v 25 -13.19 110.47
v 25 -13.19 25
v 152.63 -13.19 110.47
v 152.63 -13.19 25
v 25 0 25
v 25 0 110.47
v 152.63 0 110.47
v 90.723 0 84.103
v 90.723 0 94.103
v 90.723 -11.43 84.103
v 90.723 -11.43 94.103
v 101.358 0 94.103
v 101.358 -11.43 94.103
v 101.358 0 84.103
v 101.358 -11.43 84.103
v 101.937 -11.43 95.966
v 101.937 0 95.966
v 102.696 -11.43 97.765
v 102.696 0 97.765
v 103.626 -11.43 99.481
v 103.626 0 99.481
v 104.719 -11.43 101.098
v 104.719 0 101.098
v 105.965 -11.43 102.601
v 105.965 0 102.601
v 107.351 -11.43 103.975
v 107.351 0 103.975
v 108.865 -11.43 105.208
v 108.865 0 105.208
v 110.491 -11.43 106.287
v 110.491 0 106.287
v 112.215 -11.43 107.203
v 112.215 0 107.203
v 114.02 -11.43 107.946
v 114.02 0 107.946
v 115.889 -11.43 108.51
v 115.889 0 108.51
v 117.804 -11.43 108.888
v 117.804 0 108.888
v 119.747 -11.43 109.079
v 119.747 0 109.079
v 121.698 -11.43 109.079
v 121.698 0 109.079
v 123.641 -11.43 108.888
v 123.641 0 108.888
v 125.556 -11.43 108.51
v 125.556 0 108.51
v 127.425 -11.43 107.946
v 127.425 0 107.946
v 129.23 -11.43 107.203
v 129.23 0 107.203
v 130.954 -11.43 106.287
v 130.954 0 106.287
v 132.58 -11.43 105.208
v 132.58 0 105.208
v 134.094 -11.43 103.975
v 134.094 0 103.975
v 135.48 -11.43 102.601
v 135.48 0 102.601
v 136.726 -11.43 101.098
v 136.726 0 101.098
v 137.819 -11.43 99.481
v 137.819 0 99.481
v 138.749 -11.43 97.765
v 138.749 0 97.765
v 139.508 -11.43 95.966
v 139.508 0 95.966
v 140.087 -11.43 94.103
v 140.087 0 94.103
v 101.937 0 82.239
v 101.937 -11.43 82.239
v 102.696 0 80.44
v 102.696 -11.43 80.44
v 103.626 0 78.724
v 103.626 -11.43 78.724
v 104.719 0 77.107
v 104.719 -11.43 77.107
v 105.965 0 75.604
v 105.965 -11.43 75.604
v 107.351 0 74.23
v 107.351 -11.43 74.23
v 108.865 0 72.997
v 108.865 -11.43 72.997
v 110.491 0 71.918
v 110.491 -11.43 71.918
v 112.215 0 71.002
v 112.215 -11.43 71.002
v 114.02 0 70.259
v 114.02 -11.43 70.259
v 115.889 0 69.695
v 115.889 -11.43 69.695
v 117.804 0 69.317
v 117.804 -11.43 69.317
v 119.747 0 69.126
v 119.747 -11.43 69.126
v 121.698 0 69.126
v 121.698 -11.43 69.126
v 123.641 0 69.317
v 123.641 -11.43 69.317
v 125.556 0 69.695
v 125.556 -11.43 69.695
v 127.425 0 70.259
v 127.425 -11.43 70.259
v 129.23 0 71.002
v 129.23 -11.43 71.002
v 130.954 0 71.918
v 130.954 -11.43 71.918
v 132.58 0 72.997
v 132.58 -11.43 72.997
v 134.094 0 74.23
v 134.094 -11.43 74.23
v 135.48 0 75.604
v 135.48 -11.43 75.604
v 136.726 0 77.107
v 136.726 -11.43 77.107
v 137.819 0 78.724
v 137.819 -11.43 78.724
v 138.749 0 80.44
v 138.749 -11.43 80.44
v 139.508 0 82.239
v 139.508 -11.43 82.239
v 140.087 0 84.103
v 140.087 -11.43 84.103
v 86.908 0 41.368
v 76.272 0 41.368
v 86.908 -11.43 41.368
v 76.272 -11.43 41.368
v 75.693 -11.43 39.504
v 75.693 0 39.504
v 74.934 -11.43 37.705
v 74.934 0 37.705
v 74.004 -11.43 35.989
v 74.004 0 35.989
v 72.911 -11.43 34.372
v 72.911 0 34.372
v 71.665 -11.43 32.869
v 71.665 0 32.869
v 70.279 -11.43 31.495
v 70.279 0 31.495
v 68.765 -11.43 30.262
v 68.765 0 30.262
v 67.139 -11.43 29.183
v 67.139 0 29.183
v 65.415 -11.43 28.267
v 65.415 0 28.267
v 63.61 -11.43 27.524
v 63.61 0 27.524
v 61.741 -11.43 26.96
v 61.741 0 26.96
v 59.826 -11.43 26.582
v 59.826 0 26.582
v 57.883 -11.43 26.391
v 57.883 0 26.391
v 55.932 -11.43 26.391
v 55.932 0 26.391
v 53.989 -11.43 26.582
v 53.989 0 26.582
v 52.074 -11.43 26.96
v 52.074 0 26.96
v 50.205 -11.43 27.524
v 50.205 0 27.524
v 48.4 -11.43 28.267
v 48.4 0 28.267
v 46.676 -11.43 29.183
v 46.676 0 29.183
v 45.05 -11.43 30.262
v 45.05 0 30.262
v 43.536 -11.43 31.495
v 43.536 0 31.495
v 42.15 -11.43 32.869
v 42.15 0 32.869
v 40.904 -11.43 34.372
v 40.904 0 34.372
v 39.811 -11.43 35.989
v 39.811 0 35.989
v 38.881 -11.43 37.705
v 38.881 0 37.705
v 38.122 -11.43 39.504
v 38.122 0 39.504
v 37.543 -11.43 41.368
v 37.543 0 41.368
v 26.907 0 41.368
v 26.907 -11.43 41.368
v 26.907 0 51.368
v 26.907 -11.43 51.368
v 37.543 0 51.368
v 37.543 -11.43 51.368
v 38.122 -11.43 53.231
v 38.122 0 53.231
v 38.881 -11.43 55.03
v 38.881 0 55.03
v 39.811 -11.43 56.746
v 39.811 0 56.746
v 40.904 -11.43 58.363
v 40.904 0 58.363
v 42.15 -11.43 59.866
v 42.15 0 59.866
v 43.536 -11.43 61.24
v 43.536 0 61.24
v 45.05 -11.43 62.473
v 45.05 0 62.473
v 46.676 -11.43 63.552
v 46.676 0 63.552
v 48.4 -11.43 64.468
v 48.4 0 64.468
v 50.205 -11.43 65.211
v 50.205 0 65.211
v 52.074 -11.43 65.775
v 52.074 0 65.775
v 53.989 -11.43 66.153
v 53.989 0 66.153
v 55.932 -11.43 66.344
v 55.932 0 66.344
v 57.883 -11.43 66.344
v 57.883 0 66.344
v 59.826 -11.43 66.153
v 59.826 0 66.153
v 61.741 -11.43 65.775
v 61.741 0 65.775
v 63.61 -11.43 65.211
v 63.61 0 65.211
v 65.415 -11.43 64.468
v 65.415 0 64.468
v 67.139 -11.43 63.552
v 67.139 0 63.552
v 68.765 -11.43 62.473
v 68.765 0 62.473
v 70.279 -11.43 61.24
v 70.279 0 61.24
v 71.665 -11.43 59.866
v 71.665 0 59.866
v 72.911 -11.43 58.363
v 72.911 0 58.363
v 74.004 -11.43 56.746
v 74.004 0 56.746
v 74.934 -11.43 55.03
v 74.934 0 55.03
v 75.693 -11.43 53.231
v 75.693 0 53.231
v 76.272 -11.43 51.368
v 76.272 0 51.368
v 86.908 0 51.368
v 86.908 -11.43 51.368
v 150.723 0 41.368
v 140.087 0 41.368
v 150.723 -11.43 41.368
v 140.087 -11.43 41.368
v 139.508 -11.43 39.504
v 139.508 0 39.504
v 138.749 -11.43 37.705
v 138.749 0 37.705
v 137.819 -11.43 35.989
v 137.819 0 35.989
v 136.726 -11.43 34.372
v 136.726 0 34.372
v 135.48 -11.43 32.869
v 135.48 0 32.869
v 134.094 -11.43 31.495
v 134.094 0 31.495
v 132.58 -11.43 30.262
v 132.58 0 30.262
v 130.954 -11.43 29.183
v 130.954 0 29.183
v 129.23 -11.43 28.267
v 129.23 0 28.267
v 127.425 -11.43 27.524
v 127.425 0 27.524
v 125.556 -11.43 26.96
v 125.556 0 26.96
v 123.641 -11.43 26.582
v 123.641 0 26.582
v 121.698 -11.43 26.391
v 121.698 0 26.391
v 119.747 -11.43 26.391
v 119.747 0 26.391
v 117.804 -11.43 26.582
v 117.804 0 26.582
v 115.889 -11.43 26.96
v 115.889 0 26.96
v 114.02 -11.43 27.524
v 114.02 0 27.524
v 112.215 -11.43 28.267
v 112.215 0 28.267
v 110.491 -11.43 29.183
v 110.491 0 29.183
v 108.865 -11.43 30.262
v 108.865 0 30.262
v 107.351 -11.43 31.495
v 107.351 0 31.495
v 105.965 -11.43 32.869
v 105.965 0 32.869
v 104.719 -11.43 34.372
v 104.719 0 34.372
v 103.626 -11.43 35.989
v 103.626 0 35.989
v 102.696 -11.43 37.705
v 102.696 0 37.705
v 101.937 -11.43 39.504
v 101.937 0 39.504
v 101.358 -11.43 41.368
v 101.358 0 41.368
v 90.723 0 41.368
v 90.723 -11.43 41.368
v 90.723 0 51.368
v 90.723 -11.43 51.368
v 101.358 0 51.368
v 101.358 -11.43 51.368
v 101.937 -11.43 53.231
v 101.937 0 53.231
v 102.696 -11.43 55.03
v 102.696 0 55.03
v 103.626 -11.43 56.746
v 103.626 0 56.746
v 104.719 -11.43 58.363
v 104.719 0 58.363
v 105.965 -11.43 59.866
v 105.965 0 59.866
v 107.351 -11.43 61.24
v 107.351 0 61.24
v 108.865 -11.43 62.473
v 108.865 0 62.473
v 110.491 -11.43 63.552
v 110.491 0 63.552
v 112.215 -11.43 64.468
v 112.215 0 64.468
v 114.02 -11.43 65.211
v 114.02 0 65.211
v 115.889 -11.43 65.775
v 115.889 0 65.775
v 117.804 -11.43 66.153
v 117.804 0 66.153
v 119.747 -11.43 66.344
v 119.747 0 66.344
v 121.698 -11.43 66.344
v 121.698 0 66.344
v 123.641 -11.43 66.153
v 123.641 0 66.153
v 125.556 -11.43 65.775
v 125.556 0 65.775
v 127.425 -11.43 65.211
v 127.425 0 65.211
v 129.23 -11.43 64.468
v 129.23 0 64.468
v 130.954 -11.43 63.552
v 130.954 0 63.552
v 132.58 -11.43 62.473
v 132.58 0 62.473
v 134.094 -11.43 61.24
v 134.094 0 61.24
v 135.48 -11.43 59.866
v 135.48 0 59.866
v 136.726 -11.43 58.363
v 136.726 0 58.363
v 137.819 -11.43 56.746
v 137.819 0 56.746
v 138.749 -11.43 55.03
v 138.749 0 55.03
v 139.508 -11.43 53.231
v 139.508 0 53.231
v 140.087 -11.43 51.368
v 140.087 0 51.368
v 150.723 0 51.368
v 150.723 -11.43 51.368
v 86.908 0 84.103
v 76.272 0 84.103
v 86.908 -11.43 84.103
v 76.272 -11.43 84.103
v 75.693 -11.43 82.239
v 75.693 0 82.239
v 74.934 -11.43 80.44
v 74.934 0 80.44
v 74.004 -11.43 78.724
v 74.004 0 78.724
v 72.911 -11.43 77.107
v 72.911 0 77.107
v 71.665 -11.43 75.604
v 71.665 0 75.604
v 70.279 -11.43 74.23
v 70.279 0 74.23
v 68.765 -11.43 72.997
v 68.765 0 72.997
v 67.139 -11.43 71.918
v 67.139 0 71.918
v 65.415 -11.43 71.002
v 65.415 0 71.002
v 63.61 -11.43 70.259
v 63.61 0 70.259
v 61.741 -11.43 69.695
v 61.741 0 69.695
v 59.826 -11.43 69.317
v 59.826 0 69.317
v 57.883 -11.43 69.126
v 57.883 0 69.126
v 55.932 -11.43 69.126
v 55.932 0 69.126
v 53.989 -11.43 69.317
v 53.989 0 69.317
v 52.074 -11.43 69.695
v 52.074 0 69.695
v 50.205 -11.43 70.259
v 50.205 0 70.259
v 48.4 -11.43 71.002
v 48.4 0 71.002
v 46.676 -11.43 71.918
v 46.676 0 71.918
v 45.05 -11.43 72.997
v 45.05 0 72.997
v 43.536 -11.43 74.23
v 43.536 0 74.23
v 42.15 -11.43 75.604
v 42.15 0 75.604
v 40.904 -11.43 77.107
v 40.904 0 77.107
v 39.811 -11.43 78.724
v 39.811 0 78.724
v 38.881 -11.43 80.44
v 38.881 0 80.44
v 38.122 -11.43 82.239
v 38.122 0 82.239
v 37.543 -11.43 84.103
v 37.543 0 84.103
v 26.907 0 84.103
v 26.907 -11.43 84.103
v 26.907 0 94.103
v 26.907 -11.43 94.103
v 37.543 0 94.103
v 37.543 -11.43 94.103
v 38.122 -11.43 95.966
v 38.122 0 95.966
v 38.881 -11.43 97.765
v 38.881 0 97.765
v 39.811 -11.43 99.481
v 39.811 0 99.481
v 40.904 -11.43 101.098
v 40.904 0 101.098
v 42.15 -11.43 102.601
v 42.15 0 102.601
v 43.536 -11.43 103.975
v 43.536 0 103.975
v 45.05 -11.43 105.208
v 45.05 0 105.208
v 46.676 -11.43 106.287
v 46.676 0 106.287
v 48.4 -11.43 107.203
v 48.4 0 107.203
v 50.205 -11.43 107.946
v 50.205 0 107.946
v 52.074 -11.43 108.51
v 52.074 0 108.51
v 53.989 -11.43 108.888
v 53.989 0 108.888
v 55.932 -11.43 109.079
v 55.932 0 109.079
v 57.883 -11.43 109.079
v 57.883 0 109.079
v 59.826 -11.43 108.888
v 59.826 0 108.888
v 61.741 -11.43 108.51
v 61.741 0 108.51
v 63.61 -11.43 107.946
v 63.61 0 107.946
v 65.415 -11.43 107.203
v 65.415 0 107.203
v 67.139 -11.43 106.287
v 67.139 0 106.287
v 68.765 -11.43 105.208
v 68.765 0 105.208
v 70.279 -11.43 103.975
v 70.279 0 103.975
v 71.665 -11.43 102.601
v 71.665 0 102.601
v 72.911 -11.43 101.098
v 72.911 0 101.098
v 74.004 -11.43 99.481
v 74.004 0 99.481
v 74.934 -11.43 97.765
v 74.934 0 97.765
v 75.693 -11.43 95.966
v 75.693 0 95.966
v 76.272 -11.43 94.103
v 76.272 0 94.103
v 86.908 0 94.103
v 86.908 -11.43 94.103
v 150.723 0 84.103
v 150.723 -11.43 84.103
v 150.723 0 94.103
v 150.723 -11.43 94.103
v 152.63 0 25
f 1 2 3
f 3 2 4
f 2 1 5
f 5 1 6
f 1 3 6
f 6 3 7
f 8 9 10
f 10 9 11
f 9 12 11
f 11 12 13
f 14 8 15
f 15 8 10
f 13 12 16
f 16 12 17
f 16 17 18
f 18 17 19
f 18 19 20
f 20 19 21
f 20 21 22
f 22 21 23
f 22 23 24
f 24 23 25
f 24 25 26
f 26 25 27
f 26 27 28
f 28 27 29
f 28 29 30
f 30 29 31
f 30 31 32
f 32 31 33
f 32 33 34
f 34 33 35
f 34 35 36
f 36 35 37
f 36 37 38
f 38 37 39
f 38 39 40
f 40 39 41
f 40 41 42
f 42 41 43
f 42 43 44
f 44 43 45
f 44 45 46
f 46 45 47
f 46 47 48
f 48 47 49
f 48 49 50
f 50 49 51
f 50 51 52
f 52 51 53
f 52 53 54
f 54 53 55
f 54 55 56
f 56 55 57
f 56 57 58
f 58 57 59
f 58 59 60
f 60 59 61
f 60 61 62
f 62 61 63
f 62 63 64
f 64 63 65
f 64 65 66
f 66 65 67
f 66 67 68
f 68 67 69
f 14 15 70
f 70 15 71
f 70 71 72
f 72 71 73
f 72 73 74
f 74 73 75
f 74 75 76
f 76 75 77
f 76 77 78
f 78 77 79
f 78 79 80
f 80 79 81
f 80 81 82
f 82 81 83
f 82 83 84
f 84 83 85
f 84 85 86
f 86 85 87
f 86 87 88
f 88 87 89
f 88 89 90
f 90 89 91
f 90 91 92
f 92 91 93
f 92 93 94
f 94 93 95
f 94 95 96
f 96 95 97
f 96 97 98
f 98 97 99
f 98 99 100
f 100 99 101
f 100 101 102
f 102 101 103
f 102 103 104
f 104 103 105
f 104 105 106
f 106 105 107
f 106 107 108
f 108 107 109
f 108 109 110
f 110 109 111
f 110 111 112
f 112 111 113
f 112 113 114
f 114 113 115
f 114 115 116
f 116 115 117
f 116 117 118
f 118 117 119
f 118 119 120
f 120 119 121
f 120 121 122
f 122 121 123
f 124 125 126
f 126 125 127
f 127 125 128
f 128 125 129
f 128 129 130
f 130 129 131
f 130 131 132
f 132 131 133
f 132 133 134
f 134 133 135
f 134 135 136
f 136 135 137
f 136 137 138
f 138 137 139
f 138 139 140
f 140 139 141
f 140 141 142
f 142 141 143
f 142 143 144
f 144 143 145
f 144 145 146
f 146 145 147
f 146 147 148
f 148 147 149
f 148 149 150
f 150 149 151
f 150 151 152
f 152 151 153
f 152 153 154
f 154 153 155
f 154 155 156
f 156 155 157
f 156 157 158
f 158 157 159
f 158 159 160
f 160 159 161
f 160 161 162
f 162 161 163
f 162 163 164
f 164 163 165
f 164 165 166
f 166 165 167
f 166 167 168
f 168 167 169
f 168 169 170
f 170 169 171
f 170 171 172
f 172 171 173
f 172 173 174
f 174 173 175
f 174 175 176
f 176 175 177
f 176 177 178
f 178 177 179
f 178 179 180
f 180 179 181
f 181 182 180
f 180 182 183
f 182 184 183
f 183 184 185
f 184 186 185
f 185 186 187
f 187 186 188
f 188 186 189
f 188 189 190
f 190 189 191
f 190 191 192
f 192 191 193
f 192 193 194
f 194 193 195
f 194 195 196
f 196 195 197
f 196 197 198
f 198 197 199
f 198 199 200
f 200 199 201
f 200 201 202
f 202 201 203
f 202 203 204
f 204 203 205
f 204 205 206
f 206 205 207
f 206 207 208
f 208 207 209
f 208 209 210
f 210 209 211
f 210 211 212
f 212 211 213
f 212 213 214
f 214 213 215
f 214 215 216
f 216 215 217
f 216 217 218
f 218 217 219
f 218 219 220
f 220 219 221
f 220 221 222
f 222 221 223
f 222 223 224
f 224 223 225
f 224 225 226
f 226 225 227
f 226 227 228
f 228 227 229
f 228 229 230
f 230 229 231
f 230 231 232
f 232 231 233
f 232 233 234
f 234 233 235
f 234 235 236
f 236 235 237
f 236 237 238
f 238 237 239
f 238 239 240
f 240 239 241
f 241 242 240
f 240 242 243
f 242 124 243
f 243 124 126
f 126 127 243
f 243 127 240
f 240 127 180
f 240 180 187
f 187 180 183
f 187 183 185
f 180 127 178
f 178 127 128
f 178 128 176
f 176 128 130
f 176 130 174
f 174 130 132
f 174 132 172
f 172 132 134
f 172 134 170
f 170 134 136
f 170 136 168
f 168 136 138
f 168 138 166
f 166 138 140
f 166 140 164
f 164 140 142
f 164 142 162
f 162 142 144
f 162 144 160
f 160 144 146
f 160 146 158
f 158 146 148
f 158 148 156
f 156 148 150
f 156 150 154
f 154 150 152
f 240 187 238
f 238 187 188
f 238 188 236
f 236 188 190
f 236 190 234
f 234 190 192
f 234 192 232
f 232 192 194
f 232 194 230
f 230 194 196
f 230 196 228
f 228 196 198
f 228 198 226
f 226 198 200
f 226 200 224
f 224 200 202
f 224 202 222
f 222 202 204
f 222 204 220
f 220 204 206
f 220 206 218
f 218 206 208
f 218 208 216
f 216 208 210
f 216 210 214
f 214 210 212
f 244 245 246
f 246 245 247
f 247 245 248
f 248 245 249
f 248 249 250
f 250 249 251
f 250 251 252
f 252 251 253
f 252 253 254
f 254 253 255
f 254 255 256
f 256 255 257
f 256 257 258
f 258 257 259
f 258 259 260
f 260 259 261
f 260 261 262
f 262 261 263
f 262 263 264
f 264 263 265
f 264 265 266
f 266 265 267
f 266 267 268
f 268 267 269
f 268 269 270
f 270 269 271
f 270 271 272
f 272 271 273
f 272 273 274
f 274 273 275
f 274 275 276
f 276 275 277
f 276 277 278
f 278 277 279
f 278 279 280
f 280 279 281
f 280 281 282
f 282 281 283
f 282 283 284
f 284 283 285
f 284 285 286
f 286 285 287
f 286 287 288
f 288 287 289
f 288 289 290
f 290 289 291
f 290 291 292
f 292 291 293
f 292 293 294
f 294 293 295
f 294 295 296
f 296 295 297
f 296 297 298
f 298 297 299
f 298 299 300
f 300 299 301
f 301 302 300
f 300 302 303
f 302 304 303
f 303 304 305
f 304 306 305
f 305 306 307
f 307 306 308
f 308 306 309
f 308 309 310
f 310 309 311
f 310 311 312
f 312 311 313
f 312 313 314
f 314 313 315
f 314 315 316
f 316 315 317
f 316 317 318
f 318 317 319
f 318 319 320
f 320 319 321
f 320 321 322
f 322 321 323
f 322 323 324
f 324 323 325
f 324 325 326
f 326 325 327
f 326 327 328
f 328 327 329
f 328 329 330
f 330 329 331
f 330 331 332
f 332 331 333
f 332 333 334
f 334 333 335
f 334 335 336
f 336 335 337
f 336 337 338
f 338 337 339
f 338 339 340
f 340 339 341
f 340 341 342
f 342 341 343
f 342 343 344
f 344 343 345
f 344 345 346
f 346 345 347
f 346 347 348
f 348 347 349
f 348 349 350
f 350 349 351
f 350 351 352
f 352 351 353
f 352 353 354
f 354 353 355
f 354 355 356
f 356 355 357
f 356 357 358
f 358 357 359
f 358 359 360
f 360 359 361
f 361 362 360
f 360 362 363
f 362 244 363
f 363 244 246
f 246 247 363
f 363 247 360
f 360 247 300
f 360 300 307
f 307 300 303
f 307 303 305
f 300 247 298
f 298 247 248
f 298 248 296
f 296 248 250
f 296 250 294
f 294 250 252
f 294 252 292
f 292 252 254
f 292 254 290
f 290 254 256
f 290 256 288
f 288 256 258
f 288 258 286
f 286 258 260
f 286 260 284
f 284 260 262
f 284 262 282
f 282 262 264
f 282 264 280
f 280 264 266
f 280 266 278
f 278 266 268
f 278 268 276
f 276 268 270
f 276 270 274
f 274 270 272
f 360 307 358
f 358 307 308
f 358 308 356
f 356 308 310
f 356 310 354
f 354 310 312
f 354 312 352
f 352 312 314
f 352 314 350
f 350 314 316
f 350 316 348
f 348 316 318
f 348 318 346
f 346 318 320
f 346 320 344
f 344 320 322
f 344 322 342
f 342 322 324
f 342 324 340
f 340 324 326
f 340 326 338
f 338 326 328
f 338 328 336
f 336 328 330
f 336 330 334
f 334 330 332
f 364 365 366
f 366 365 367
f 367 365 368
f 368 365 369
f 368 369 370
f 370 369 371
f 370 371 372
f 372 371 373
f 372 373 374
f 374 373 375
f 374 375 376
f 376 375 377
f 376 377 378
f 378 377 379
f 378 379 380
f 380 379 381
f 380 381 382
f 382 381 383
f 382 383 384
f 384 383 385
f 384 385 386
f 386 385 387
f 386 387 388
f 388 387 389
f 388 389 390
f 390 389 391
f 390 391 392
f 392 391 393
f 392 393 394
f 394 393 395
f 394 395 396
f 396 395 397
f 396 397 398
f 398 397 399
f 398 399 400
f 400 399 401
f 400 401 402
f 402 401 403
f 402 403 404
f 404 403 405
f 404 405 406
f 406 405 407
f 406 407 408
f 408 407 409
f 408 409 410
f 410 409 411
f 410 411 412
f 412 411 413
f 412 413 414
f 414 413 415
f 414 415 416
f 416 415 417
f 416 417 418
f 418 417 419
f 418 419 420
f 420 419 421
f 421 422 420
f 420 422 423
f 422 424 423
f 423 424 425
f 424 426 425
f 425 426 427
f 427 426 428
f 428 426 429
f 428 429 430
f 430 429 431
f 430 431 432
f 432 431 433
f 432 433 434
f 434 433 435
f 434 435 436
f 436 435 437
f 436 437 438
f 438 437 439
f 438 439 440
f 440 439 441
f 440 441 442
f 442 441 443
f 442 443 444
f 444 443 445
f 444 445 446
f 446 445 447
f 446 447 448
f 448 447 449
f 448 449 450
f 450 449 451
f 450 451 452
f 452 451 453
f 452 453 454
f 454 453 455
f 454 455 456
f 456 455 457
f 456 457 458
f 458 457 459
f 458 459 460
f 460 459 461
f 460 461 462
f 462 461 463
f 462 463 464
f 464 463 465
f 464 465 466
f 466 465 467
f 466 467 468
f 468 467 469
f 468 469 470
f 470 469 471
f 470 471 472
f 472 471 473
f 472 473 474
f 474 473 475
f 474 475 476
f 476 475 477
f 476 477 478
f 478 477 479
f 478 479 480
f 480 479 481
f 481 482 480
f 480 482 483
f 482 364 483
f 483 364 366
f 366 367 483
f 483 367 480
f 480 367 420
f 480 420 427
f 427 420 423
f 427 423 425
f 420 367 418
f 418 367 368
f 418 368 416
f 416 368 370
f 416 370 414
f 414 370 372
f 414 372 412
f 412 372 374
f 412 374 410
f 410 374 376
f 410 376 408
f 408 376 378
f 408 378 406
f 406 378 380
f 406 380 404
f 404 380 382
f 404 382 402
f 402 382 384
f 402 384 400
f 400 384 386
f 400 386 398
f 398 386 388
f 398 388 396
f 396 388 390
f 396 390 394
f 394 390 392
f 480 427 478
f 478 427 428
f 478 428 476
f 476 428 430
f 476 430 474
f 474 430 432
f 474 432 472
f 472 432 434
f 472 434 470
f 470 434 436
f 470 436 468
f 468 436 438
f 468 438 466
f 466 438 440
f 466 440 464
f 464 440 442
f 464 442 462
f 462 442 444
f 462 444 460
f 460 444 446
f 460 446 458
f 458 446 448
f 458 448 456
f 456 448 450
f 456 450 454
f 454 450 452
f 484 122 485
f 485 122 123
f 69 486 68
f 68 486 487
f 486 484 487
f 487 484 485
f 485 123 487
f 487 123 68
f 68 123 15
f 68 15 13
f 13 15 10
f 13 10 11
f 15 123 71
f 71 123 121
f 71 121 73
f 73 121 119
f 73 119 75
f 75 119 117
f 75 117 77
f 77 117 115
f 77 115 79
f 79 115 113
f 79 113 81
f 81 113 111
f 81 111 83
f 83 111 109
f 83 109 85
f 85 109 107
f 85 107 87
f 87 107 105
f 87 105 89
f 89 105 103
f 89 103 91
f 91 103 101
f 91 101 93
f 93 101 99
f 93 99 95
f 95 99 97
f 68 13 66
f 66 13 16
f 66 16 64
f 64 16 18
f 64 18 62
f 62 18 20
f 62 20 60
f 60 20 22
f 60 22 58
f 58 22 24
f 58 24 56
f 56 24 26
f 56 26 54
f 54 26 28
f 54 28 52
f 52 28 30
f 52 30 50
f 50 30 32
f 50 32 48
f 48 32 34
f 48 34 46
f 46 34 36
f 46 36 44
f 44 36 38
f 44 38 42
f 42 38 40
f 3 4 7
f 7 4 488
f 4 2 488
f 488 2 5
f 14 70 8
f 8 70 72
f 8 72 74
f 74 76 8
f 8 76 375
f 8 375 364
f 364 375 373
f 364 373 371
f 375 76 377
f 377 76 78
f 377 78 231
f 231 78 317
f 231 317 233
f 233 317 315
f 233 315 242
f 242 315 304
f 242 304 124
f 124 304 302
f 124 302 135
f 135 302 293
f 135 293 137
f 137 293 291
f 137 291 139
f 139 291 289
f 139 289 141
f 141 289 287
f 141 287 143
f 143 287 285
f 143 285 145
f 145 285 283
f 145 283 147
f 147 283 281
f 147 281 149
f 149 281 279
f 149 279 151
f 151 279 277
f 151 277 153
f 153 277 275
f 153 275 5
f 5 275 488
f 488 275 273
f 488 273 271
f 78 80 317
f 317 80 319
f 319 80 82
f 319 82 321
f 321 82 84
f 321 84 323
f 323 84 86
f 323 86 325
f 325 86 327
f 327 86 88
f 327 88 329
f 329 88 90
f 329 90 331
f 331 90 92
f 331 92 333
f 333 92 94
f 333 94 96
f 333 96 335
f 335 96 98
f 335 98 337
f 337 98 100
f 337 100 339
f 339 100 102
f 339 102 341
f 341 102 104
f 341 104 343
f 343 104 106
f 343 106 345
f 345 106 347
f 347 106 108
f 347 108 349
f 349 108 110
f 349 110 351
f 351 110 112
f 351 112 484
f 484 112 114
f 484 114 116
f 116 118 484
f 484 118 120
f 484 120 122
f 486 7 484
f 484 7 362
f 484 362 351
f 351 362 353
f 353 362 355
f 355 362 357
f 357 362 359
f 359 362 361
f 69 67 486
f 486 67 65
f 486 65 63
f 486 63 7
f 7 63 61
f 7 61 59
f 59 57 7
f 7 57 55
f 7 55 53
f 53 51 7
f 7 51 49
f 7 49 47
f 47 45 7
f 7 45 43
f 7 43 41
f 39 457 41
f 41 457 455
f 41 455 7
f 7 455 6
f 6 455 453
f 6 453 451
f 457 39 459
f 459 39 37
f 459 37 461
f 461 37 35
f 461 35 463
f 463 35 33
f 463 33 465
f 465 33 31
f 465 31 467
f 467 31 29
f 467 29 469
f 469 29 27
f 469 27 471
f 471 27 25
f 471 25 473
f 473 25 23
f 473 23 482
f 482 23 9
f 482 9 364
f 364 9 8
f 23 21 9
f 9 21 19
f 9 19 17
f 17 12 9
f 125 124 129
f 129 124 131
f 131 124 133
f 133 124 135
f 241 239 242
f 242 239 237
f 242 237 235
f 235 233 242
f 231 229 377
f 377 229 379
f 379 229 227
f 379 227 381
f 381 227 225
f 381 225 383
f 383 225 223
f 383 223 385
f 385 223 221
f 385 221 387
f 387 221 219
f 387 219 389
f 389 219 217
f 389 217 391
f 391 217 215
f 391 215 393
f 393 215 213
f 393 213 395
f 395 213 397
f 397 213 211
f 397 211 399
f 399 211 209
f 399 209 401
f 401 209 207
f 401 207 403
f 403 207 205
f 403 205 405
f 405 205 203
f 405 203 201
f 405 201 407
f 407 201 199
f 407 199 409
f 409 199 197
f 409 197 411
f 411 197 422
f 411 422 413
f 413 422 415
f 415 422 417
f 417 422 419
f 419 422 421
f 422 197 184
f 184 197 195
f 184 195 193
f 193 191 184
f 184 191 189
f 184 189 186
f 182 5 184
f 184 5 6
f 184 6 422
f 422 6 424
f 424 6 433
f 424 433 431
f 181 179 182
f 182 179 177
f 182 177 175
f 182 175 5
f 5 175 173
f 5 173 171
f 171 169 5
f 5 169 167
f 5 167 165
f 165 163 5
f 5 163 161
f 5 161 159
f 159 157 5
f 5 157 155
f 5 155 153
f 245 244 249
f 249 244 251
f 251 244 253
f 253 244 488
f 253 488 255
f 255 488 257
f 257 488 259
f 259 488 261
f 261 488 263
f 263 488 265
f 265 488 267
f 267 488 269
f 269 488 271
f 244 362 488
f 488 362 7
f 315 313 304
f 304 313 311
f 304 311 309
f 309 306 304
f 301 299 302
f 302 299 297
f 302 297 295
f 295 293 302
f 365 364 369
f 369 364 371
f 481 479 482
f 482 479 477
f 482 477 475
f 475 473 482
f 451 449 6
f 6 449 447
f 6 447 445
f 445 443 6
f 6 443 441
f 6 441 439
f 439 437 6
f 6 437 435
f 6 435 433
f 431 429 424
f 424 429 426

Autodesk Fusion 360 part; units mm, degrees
sketch "Sketch1" plane through (0, 0, 0) normal (0, 1, 0) x (1, 0, 0)
  line L0 (25, -25) -> (152.63, -25)
  line L1 (152.63, -25) -> (152.63, -110.47)
  line L2 (152.63, -110.47) -> (25, -110.47)
  line L3 (25, -110.47) -> (25, -25)
  line L4 (25, -67.735) -> (152.63, -67.735) construction
  line L5 (88.815, -25) -> (88.815, -110.47) construction
  line L6 (88.815, -67.735) -> (25, -67.735) construction
  line L7 (56.9075, -67.735) -> (56.9075, -25) construction
  line L8 (56.9075, -67.735) -> (56.9075, -46.3675) construction
  line L9 (88.815, -67.735) -> (152.63, -67.735) construction
  line L10 (88.815, -67.735) -> (120.7225, -67.735) construction
  line L11 (120.7225, -67.735) -> (120.7225, -25) construction
  line L12 (120.7225, -67.735) -> (120.7225, -46.3675) construction
  circle A0 centre (56.9075, -46.3675) radius 20
  circle A1 centre (120.7225, -46.3675) radius 20
  line L13 (56.9075, -67.735) -> (56.9075, -110.47) construction
  line L14 (56.9075, -67.735) -> (56.9075, -89.1025) construction
  circle A2 centre (56.9075, -89.1025) radius 20
  line L15 (120.7225, -67.735) -> (120.7225, -110.47) construction
  line L16 (120.7225, -110.47) -> (120.7225, -89.1025) construction
  circle A3 centre (120.7225, -89.1025) radius 20
  line L17 (120.7225, -46.3675) -> (150.7225, -46.3675) construction
  line L18 (150.7225, -46.3675) -> (150.7225, -41.3675) construction
  line L19 (150.7225, -41.3675) -> (90.7225, -41.3675)
  line L20 (90.7225, -41.3675) -> (90.7225, -51.3675)
  line L21 (90.7225, -51.3675) -> (150.7225, -51.3675)
  line L22 (150.7225, -51.3675) -> (150.7225, -41.3675)
  line L23 (56.9075, -46.3675) -> (86.9075, -46.3675) construction
  line L24 (86.9075, -46.3675) -> (86.9075, -41.3675) construction
  line L25 (86.9075, -41.3675) -> (26.9075, -41.3675)
  line L26 (26.9075, -41.3675) -> (26.9075, -51.3675)
  line L27 (26.9075, -51.3675) -> (86.9075, -51.3675)
  line L28 (86.9075, -51.3675) -> (86.9075, -41.3675)
  line L29 (56.9075, -89.1025) -> (86.9075, -89.1025) construction
  line L30 (86.9075, -89.1025) -> (86.9075, -84.1025) construction
  line L31 (86.9075, -84.1025) -> (26.9075, -84.1025)
  line L32 (26.9075, -84.1025) -> (26.9075, -94.1025)
  line L33 (26.9075, -94.1025) -> (86.9075, -94.1025)
  line L34 (86.9075, -94.1025) -> (86.9075, -84.1025)
  line L35 (120.7225, -89.1025) -> (150.7225, -89.1025) construction
  line L36 (150.7225, -89.1025) -> (150.7225, -84.1025) construction
  line L37 (150.7225, -84.1025) -> (90.7225, -84.1025)
  line L38 (90.7225, -84.1025) -> (90.7225, -94.1025)
  line L39 (90.7225, -94.1025) -> (150.7225, -94.1025)
  line L40 (150.7225, -94.1025) -> (150.7225, -84.1025)
  dimension "d1" = 127.63
  dimension "d2" = 85.47
  dimension "d3" = 40
  dimension "d4" = 40
  dimension "d5" = 40
  dimension "d6" = 40
  dimension "d7" = 30
  dimension "d8" = 5
  dimension "d9" = 60
  dimension "d10" = 10
  dimension "d11" = 30
  dimension "d12" = 5
  dimension "d13" = 60
  dimension "d14" = 10
  dimension "d15" = 30
  dimension "d16" = 5
  dimension "d17" = 60
  dimension "d18" = 10
  dimension "d19" = 30
  dimension "d20" = 5
  dimension "d21" = 60
  dimension "d22" = 10
extrude "Extrude1" add sketch "Sketch1" against normal blind 20.19 contours L0 L1 L2 L3 | A0 L25 L27 | A0 L25 L27 L28 | A0 L25 | A0 L27 | A0 L25 L26 L27 | A1 L19 L21 | A1 L19 L21 L22 | A1 L19 | A1 L21 | A1 L19 L20 L21 | A2 L31 L33 | A2 L31 L33 L34 | A2 L31 | A2 L33 | A2 L31 L32 L33 | A3 L37 L39 | A3 L37 L39 L40 | A3 L37 | A3 L39 | A3 L37 L38 L39
extrude "Extrude2" cut sketch "Sketch1" against normal blind 11.43 contours A0 L25 L27 | A0 L25 L27 L28 | A0 L25 | A0 L27 | A0 L25 L26 L27 | A1 L19 L21 | A1 L19 L21 L22 | A1 L19 | A1 L21 | A1 L19 L20 L21 | A2 L31 L33 | A2 L31 L33 L34 | A2 L31 | A2 L33 | A2 L31 L32 L33 | A3 L37 L39 | A3 L37 L39 L40 | A3 L37 | A3 L39
extrude "Extrude3" cut sketch "Sketch1" against normal blind 11.43 contours A3 L37 L38 L39
extrude "Extrude4" cut 1 faces at (67.5433, -20.19, 53.49) along direction (0, 1, 0) blind 7
